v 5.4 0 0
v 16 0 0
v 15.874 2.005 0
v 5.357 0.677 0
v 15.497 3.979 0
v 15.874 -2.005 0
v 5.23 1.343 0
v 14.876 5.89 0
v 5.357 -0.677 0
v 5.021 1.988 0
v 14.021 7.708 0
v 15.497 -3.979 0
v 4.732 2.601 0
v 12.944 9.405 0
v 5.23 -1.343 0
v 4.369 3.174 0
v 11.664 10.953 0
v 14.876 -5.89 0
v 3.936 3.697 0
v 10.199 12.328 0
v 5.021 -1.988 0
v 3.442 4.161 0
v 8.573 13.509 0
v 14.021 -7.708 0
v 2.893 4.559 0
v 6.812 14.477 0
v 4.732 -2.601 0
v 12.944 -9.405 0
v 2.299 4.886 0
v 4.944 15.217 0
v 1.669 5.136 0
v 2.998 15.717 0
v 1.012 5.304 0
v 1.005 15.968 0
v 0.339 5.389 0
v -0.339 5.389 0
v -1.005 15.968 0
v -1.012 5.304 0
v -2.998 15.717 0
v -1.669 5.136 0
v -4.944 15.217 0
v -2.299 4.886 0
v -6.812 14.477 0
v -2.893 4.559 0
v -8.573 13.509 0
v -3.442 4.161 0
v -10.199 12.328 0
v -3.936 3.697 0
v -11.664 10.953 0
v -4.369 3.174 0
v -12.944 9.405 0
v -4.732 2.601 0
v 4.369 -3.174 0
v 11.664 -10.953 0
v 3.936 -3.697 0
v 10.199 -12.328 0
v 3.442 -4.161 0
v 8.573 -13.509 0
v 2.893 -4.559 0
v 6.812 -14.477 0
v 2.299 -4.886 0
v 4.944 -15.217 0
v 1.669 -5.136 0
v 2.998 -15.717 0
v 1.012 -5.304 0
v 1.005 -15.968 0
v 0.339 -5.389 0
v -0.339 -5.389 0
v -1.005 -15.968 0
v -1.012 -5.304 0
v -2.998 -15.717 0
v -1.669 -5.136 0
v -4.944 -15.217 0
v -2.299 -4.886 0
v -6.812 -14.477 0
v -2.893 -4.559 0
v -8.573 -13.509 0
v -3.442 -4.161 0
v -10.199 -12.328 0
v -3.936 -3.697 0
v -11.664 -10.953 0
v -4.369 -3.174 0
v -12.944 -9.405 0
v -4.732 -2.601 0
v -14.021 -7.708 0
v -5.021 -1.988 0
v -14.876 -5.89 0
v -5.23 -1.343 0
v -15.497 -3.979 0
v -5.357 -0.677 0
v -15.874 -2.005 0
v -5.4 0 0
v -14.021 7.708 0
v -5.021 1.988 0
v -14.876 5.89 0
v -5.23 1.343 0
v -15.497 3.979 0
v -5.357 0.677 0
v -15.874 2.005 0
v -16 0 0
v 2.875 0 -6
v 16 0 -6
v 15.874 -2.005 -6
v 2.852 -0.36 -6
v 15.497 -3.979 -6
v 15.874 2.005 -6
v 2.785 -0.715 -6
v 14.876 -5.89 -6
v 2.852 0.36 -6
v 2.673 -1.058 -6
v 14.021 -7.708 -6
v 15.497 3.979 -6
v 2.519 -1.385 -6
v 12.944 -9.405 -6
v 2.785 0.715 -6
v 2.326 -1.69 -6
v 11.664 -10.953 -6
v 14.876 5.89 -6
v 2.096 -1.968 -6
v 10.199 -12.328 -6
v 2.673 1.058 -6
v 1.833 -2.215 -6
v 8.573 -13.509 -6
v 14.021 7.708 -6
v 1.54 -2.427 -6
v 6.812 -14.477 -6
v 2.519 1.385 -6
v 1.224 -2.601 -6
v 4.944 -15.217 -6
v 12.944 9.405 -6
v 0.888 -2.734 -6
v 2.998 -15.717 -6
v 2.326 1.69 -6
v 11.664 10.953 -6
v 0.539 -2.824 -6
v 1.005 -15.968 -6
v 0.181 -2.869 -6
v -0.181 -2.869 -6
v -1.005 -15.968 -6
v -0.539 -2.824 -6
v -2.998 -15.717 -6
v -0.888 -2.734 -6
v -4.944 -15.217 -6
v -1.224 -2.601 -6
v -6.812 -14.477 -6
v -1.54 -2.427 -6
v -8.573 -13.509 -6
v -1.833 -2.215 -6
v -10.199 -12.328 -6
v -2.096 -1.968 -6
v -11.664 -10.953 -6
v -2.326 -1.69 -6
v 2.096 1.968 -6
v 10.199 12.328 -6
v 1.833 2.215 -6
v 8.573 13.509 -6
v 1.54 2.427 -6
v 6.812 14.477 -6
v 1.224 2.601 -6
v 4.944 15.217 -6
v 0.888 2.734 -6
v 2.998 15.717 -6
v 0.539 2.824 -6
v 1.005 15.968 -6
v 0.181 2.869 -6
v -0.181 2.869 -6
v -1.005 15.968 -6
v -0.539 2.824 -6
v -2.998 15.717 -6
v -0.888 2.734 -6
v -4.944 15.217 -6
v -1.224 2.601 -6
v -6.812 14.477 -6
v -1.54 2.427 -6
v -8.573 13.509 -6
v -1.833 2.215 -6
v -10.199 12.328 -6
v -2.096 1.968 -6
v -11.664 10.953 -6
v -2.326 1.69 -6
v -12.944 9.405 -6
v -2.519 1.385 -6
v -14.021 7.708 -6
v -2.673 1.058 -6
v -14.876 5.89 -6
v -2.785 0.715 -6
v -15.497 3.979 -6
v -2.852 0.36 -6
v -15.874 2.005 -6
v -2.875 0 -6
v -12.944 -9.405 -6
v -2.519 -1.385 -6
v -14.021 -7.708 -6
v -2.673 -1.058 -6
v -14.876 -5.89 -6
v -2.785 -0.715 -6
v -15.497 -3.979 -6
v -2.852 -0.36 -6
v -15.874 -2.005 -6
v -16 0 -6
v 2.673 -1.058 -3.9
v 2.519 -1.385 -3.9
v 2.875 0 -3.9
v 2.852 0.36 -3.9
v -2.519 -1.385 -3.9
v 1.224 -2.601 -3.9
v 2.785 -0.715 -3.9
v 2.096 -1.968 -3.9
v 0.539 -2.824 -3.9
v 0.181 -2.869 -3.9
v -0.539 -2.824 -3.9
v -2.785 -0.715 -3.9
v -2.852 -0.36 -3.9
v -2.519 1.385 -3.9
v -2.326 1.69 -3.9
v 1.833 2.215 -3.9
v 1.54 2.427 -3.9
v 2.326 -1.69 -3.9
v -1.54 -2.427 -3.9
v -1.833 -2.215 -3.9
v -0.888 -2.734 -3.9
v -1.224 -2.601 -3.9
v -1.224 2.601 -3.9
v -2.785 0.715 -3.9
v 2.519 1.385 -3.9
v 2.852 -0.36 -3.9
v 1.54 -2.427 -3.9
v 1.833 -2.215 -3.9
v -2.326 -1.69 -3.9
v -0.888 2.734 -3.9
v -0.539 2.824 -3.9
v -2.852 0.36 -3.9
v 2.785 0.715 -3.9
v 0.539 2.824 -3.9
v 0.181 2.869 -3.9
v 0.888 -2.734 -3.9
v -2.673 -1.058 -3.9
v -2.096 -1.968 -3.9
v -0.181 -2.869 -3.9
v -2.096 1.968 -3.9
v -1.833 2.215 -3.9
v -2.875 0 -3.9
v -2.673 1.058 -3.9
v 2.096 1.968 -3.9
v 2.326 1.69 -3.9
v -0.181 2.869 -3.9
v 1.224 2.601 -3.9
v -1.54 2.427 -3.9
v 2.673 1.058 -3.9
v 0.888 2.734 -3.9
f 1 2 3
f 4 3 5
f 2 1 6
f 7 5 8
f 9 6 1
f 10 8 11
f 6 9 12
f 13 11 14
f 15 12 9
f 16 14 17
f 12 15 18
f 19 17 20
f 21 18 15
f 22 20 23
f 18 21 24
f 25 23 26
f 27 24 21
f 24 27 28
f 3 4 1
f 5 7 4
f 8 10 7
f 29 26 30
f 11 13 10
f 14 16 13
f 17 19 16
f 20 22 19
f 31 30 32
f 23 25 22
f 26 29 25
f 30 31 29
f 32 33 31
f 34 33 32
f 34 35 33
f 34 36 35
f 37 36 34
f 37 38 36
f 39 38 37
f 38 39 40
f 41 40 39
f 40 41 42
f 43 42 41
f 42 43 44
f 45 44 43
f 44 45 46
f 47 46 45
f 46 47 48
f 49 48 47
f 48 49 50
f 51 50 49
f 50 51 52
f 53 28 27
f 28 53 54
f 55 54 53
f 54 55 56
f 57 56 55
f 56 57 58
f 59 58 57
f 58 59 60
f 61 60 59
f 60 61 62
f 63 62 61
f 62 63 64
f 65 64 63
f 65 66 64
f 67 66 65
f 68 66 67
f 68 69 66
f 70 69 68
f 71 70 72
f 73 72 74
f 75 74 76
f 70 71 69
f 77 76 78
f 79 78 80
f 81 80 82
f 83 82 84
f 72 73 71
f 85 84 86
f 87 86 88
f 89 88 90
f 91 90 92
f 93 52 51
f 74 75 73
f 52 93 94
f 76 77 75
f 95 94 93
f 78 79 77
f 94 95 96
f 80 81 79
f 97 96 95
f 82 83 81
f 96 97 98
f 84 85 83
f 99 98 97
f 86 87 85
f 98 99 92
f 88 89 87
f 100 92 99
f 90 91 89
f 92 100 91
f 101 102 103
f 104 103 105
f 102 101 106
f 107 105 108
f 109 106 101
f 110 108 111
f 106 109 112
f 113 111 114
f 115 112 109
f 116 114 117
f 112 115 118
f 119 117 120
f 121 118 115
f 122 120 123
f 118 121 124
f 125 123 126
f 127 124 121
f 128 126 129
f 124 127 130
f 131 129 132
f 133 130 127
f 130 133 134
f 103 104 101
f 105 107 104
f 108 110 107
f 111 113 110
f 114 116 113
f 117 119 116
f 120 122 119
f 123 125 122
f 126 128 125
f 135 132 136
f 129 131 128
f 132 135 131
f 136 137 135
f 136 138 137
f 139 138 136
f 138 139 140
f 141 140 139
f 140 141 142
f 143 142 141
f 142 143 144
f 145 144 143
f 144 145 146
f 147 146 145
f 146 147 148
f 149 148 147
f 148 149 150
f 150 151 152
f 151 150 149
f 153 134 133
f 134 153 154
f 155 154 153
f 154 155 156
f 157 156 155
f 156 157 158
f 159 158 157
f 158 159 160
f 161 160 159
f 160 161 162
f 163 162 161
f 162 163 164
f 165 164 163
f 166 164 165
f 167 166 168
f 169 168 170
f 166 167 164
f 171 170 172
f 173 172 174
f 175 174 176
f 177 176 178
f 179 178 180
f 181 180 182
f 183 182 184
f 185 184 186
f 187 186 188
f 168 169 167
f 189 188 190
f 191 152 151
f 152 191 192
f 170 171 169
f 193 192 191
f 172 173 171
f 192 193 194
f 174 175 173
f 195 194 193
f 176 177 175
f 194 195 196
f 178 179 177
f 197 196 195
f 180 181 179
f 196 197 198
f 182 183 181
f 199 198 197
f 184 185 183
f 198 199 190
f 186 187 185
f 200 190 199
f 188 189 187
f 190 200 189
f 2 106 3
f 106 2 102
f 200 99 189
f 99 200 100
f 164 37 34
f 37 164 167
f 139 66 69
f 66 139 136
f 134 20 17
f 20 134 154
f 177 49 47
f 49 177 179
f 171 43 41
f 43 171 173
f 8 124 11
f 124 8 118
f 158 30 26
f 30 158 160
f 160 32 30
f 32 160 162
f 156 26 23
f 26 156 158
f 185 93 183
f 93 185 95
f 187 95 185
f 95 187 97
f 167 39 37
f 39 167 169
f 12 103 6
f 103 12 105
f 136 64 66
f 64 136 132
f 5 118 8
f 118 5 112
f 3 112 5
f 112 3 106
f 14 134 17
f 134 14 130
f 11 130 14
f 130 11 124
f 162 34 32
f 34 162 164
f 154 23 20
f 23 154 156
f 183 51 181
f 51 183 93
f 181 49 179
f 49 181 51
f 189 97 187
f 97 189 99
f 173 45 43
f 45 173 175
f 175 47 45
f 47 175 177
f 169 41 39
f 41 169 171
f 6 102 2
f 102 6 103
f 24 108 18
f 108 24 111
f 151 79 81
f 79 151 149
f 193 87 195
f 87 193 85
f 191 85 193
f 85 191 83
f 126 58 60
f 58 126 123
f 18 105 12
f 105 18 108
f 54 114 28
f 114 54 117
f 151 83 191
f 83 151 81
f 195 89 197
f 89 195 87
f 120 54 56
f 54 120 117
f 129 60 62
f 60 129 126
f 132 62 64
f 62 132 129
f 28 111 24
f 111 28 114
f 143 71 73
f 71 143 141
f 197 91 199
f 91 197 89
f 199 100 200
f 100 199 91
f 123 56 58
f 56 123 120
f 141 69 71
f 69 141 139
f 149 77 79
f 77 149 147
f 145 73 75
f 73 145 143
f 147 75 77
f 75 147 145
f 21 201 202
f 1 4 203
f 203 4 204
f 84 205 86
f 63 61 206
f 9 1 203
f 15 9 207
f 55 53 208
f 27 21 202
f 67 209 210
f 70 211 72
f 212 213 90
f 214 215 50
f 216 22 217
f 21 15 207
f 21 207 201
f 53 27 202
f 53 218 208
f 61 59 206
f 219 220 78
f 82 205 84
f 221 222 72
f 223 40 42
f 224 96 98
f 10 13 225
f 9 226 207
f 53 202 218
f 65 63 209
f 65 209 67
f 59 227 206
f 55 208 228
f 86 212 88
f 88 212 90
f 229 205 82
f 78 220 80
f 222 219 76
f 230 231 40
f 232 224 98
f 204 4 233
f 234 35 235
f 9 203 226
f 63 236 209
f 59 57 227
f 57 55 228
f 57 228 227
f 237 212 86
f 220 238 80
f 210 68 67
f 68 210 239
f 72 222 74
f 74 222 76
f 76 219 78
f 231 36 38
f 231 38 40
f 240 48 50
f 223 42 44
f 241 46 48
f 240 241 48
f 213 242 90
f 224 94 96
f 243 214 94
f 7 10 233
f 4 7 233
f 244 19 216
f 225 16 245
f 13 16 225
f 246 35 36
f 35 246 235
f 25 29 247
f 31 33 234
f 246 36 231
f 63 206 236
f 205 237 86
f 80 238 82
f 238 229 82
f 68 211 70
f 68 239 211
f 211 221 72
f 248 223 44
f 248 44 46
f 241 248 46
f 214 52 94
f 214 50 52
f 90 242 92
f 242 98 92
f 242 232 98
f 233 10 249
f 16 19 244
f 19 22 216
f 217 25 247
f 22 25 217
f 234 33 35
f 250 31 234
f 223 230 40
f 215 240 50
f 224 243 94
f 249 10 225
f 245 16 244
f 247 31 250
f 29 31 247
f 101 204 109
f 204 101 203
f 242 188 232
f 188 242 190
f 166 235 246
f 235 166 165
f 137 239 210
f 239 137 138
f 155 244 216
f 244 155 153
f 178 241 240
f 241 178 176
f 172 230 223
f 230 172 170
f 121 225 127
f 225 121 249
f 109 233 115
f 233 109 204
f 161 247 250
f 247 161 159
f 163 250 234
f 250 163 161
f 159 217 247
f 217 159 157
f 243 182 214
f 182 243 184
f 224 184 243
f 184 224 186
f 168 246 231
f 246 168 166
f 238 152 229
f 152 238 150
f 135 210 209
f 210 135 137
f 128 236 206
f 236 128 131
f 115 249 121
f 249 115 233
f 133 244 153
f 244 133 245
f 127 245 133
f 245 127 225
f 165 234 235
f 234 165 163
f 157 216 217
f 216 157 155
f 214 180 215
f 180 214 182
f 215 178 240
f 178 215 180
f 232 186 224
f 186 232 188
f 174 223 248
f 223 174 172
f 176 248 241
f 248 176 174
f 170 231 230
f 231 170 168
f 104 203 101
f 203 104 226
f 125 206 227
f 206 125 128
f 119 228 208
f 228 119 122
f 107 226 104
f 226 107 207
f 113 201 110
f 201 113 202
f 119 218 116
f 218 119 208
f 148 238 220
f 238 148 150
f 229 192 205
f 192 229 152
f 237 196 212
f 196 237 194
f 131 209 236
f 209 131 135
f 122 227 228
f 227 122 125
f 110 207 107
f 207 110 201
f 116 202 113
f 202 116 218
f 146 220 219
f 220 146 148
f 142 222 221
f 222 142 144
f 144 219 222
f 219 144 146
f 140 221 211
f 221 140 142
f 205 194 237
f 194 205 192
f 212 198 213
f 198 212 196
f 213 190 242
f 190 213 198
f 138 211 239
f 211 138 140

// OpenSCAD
$fn = 50;


difference() {
	union() {
		translate(v = [0, 0, -6.0000000000]) {
			cylinder(h = 6, r = 10.0000000000);
		}
		translate(v = [0, 0, -6.0000000000]) {
			cylinder(h = 6, r = 16.0000000000);
		}
	}
	union() {
		translate(v = [0, 0, 0]) {
			rotate(a = [0, 0, 0]) {
				difference() {
					union() {
						#translate(v = [0, 0, -6.0000000000]) {
							cylinder(h = 6, r = 2.6000000000);
						}
						#translate(v = [0, 0, -3.9000000000]) {
							cylinder(h = 3.9000000000, r1 = 2.8750000000, r2 = 5.4000000000);
						}
						#translate(v = [0, 0, -6.0000000000]) {
							cylinder(h = 6, r = 2.8750000000);
						}
						#translate(v = [0, 0, -6.0000000000]) {
							cylinder(h = 6, r = 2.6000000000);
						}
					}
					union();
				}
			}
		}
	}
}
